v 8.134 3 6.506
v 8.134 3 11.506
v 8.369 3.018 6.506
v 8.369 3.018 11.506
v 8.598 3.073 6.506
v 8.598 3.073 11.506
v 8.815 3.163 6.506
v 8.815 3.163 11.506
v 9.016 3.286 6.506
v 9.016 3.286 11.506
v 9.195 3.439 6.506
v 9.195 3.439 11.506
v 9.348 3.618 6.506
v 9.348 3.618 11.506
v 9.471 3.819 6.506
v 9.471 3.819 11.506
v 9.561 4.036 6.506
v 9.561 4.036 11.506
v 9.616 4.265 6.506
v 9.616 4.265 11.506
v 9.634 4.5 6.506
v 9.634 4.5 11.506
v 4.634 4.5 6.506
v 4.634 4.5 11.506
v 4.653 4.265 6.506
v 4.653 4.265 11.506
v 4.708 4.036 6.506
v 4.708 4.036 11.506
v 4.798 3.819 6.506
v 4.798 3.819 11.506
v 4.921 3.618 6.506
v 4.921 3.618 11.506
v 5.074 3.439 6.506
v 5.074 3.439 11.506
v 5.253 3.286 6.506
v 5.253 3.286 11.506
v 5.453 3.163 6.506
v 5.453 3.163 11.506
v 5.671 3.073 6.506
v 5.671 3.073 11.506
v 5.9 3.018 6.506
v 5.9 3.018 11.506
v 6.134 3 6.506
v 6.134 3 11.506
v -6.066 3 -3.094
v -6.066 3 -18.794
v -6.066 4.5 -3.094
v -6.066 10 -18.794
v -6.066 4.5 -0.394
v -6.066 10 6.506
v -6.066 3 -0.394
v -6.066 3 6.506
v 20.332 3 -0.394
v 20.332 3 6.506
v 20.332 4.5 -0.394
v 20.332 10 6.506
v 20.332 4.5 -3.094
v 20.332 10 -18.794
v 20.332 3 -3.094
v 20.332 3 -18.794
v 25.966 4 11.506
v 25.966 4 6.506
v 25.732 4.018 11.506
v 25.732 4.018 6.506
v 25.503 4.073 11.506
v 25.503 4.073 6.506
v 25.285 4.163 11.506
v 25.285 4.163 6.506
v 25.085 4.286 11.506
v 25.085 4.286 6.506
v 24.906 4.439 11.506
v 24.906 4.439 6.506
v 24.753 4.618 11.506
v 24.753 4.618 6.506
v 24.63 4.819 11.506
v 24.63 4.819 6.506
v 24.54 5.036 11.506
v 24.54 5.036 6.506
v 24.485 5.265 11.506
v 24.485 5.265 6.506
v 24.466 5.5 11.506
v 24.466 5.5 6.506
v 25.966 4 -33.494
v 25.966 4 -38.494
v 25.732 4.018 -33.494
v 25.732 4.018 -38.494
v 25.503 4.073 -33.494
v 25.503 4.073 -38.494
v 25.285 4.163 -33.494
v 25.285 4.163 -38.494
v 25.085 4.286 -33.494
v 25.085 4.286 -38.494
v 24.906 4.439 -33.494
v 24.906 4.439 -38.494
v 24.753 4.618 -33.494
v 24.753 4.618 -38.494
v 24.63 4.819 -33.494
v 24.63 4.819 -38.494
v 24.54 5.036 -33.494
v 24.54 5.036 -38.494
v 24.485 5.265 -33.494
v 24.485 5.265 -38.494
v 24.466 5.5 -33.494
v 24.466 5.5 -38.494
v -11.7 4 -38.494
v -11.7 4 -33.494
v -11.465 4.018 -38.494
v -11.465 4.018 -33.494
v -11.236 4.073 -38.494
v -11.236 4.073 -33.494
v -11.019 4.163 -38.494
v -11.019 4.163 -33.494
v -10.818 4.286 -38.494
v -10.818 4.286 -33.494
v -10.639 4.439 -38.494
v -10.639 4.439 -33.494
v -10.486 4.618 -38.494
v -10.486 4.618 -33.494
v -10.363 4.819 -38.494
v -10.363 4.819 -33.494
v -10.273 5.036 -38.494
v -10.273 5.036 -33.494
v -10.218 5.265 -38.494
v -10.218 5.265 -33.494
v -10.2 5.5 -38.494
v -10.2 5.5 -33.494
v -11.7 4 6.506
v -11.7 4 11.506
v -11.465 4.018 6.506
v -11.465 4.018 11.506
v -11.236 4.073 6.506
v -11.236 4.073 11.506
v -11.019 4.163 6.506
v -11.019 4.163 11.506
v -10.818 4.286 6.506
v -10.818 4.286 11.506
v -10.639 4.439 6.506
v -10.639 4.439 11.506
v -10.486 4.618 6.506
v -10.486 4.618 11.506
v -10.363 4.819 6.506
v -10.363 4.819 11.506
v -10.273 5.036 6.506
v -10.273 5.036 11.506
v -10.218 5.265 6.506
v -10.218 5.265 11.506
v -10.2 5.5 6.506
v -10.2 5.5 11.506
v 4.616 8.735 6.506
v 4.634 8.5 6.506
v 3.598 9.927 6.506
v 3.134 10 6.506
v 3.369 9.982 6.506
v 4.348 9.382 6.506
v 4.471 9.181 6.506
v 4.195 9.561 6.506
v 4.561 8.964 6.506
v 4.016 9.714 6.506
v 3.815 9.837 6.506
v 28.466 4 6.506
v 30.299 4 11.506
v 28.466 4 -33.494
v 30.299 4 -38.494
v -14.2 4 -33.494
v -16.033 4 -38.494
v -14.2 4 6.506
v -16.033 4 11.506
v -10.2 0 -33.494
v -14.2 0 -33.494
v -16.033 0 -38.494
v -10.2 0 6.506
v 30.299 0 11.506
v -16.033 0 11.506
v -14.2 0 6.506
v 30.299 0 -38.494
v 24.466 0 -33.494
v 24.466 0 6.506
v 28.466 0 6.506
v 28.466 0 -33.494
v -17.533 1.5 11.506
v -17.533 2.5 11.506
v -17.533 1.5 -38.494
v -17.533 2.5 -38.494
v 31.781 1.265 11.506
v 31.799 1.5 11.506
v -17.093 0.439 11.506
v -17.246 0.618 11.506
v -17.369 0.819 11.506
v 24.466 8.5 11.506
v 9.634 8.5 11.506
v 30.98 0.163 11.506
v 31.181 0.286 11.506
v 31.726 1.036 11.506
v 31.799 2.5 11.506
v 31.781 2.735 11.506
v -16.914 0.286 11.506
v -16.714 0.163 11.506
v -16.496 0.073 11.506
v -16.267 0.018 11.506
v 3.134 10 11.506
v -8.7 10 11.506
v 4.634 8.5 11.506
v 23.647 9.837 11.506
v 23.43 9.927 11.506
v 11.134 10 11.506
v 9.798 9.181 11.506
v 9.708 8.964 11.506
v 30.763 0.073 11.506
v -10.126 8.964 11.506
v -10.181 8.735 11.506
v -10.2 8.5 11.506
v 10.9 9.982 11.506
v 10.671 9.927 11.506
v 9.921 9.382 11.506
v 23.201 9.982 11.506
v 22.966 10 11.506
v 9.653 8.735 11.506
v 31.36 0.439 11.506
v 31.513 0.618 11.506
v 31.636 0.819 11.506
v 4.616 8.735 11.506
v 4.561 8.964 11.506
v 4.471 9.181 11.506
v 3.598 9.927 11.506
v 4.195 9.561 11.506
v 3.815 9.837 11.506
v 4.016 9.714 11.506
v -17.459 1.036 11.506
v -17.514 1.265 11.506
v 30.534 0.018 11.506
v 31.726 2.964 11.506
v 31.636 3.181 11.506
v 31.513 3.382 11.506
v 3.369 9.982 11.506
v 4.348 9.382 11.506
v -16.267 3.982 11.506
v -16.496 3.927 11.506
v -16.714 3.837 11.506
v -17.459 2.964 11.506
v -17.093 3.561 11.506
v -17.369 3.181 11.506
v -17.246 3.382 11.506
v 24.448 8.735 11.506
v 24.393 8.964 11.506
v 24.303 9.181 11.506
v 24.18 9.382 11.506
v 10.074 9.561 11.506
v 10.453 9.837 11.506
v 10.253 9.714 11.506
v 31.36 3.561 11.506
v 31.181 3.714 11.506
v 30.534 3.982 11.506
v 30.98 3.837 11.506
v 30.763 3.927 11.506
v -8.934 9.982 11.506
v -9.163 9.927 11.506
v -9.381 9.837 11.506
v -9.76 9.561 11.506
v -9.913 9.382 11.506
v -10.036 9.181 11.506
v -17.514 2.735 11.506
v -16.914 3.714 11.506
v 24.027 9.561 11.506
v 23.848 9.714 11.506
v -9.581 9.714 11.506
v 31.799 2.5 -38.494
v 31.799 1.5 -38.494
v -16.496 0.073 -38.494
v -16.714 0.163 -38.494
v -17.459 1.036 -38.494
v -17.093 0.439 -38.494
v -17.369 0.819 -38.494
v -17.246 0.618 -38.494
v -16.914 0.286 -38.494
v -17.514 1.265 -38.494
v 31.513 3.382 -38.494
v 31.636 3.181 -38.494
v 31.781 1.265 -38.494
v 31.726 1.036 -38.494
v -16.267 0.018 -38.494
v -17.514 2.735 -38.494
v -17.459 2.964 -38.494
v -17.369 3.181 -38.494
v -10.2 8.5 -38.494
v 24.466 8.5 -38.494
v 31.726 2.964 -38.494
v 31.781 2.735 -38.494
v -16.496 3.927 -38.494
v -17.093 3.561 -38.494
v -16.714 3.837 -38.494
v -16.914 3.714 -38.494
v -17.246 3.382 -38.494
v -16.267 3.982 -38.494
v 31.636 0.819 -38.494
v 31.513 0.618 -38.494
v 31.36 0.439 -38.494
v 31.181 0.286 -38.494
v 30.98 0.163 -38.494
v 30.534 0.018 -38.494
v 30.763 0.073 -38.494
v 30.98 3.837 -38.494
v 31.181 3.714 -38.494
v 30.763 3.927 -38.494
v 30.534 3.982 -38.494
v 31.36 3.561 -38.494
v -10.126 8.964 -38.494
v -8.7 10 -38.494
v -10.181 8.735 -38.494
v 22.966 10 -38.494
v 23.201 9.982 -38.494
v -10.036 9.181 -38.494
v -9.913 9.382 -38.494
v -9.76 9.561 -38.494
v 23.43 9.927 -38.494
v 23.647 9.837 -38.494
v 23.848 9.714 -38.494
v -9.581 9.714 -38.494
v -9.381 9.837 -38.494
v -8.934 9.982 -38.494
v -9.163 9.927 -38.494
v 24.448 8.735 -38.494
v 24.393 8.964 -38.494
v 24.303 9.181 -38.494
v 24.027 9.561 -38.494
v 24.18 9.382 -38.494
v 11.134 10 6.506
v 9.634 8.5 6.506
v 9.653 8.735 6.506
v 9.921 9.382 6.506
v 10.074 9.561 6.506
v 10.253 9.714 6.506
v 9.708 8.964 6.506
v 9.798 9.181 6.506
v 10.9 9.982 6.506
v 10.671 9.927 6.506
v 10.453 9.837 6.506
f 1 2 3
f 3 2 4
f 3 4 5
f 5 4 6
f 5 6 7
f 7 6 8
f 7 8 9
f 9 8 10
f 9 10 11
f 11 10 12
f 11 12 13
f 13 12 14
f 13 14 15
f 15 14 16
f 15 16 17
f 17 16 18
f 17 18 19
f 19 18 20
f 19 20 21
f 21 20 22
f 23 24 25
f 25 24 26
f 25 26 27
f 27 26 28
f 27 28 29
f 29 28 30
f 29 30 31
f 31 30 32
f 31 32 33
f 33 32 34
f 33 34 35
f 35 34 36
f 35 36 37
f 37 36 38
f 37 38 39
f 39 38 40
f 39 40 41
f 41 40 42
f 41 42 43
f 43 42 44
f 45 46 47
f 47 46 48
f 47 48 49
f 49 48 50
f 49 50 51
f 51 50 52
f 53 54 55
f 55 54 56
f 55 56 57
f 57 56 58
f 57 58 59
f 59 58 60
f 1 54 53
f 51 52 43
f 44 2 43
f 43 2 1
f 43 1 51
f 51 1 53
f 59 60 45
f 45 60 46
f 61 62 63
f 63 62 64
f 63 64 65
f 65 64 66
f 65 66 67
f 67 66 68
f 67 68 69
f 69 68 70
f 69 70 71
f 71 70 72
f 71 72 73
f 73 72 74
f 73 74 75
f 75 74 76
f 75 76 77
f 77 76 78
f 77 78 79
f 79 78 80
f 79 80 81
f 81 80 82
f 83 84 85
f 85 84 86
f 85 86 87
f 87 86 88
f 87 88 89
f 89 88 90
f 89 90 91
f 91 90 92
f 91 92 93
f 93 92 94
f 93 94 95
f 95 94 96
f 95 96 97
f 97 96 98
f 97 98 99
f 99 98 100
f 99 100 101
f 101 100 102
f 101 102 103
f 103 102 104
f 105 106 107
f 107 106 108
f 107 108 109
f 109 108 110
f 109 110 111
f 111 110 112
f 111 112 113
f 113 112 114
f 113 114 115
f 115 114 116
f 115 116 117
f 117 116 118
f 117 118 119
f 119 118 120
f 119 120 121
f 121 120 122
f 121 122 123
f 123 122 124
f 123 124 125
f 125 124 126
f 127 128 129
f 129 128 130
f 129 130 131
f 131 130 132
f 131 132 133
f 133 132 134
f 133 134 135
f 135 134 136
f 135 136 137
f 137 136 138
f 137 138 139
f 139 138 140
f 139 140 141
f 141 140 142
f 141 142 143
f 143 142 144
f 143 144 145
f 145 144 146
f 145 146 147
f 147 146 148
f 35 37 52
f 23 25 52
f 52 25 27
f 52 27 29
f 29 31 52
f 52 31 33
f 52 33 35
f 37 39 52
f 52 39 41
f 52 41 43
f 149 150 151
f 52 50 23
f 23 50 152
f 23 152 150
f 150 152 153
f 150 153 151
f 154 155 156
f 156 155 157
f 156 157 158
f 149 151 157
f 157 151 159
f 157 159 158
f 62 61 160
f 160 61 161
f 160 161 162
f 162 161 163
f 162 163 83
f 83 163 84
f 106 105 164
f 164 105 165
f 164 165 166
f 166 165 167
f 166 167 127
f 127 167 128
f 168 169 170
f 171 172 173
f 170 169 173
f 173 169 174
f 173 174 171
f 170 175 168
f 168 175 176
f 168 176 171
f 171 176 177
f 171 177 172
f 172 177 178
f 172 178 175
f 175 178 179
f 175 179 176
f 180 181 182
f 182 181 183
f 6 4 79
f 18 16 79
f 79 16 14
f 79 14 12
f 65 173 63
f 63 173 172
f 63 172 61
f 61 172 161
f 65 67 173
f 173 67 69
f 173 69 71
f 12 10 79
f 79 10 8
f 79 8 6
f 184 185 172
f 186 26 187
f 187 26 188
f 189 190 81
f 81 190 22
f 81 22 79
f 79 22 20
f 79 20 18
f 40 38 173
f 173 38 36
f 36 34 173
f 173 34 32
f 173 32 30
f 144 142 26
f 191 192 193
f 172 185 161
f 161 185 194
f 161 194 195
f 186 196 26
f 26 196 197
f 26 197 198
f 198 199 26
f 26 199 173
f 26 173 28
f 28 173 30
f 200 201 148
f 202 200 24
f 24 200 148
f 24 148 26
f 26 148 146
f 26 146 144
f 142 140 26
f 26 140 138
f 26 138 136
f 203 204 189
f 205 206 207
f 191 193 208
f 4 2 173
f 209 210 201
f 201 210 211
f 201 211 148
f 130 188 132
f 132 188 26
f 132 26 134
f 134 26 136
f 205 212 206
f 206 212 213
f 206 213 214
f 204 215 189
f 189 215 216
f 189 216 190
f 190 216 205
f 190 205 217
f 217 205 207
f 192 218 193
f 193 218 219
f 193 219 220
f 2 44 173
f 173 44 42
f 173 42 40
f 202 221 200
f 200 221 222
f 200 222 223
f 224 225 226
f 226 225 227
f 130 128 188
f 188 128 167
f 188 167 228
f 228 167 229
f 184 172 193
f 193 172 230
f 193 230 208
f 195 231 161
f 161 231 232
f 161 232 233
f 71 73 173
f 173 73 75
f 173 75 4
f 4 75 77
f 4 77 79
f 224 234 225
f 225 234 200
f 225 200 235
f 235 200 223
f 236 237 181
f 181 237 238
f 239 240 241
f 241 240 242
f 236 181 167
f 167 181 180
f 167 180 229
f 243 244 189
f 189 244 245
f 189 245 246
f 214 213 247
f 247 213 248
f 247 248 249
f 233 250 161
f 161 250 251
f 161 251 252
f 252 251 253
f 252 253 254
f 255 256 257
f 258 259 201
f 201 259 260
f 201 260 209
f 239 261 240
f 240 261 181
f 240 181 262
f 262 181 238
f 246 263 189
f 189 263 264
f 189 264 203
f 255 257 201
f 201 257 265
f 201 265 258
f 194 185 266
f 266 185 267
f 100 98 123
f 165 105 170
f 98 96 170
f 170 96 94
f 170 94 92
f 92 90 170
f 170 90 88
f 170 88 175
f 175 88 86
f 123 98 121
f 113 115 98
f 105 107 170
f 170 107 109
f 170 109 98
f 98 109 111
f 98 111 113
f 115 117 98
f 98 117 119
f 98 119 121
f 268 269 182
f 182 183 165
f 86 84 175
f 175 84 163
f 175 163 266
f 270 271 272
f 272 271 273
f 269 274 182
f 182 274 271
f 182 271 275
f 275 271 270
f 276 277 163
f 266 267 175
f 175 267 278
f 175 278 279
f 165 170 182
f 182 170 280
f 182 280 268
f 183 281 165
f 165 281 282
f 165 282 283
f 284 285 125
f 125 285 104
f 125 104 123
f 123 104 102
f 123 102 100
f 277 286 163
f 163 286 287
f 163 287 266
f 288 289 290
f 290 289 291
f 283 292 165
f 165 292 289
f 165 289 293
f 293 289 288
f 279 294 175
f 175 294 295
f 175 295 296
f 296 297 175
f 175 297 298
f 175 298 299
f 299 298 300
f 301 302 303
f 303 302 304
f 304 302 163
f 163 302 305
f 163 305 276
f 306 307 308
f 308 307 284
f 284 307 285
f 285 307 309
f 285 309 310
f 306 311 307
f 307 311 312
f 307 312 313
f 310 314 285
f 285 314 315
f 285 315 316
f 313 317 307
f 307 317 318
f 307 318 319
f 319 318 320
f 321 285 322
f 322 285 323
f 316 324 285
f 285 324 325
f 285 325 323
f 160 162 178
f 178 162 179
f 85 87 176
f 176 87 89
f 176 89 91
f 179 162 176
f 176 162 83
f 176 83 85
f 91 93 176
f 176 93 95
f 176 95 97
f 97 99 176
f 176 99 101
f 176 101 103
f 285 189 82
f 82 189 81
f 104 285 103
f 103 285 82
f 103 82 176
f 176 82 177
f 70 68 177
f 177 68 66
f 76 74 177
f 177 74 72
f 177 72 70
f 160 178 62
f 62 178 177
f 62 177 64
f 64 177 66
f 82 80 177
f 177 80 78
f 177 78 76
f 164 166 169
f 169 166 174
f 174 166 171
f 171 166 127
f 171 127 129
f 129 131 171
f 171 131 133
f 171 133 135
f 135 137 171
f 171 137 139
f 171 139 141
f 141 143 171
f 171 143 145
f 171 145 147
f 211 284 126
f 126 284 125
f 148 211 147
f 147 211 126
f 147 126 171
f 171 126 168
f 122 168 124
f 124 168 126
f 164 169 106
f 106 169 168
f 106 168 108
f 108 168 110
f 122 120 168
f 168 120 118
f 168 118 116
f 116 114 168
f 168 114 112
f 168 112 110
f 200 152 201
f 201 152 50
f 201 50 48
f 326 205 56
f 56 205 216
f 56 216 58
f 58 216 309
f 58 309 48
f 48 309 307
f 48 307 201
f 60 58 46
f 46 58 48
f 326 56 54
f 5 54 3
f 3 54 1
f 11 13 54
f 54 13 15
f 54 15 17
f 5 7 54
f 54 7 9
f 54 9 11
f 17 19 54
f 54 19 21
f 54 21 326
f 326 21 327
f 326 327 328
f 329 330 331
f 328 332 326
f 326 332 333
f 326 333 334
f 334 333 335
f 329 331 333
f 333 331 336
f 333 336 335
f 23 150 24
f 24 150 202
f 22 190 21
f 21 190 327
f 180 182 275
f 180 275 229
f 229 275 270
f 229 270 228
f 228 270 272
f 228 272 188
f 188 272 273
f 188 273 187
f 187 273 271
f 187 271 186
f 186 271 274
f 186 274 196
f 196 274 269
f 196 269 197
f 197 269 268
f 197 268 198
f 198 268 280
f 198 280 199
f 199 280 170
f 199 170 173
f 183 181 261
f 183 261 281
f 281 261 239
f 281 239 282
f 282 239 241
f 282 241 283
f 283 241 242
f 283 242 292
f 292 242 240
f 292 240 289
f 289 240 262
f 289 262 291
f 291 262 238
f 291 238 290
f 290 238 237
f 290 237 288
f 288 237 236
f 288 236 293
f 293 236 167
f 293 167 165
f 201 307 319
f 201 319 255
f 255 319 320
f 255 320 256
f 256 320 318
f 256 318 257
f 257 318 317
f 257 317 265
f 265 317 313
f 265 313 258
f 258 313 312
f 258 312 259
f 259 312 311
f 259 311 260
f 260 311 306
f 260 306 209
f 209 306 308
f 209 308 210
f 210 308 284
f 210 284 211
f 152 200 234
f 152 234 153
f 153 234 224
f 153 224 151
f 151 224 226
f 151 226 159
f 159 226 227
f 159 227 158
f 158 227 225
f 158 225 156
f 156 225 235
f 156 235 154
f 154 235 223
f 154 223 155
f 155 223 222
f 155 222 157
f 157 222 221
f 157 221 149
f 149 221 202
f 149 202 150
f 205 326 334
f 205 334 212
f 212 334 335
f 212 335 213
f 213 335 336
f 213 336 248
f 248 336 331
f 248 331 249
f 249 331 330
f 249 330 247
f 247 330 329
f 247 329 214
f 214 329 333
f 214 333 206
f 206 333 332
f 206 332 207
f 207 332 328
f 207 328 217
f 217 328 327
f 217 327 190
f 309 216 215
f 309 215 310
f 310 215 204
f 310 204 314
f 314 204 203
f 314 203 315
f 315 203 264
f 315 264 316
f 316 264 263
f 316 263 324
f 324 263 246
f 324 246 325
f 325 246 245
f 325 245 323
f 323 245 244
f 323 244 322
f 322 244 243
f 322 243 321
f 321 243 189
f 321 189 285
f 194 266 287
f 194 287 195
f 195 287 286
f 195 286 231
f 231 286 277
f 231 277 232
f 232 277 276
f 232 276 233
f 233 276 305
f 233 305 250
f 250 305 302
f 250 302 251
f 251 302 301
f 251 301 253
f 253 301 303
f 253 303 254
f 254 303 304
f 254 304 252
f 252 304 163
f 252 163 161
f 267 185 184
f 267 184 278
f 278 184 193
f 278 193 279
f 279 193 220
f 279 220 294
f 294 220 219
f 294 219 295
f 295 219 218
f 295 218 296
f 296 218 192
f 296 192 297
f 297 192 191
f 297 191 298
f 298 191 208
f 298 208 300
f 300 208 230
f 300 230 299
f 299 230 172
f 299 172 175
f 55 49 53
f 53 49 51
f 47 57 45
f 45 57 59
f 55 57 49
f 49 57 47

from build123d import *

# Parameters (mm, degrees)
SKETCH1_W            = 49.332
SKETCH1_H            = 50
SKETCH1_W_2          = 4
SKETCH1_H_2          = 40
BOSS_EXTRUDE1_DEPTH  = 4
SKETCH2_W            = 4.134
SKETCH2_H            = 50
BOSS_EXTRUDE2_DEPTH  = 6
SKETCH8_W            = 4.134
SKETCH8_H            = 50
BOSS_EXTRUDE6_DEPTH  = 6
SKETCH9_W            = 26.398
SKETCH9_H            = 19.7
BOSS_EXTRUDE7_DEPTH  = 6
SKETCH10_W           = 26.398
SKETCH10_H           = 5
BOSS_EXTRUDE8_DEPTH  = 6
SKETCH11_W           = 5
SKETCH11_H           = 5
CUT_EXTRUDE1_DEPTH   = 7
FILLET9_R            = 1.5
FILLET10_R           = 1.5
FILLET13_R           = 1.5
FILLET14_R           = 1.5
FILLET15_R           = 1.5
SKETCH12_W           = 26.398
SKETCH12_H           = 25.3
CUT_EXTRUDE2_DEPTH   = 1
SKETCH13_W           = 26.398
SKETCH13_H           = 2.7
BOSS_EXTRUDE10_DEPTH = 1.5
FILLET18_R           = 1.5
FILLET19_R           = 1.5


with BuildPart() as part:
    # Sketch1 → Boss-Extrude1 (new body)
    with BuildSketch(Plane(origin=(0, 0, 0), x_dir=(1, 0, 0), z_dir=(0, 1, 0))):
        with Locations((7.133329328, 13.494184872)):
            Rectangle(SKETCH1_W, SKETCH1_H)
        with Locations((26.466329328, 13.494184872)):
            Rectangle(SKETCH1_W_2, SKETCH1_H_2, mode=Mode.SUBTRACT)
        with Locations((-12.199670672, 13.494184872)):
            Rectangle(SKETCH1_W_2, SKETCH1_H_2, mode=Mode.SUBTRACT)
    extrude(amount=BOSS_EXTRUDE1_DEPTH)

    # Sketch2 → Boss-Extrude2 (add)
    with BuildSketch(Plane(origin=(0, 4, 0), x_dir=(1, 0, 0), z_dir=(0, 1, 0))):
        with Locations((-8.132670672, 13.494184872)):
            Rectangle(SKETCH2_W, SKETCH2_H)
    extrude(amount=BOSS_EXTRUDE2_DEPTH)

    # Sketch8 → Boss-Extrude6 (add)
    with BuildSketch(Plane(origin=(0, 4, 0), x_dir=(1, 0, 0), z_dir=(0, 1, 0))):
        with Locations((22.399329328, 13.494184872)):
            Rectangle(SKETCH8_W, SKETCH8_H)
    extrude(amount=BOSS_EXTRUDE6_DEPTH)

    # Sketch9 → Boss-Extrude7 (add)
    with BuildSketch(Plane(origin=(0, 4, 0), x_dir=(1, 0, 0), z_dir=(0, 1, 0))):
        with Locations((7.133329328, 28.644184872)):
            Rectangle(SKETCH9_W, SKETCH9_H)
    extrude(amount=BOSS_EXTRUDE7_DEPTH)

    # Sketch10 → Boss-Extrude8 (add)
    with BuildSketch(Plane(origin=(0, 4, 0), x_dir=(1, 0, 0), z_dir=(0, 1, 0))):
        with Locations((7.133329328, -9.005815128)):
            Rectangle(SKETCH10_W, SKETCH10_H)
    extrude(amount=BOSS_EXTRUDE8_DEPTH)

    # Sketch11 → Cut-Extrude1 (cut)
    with BuildSketch(Plane(origin=(0, 10, 0), x_dir=(1, 0, 0), z_dir=(0, 1, 0))):
        with Locations((7.134329328, -9.005815128)):
            Rectangle(SKETCH11_W, SKETCH11_H)
    extrude(amount=-CUT_EXTRUDE1_DEPTH, mode=Mode.SUBTRACT)

    # Fillet9
    fillet9_edges = [part.edges().sort_by_distance(p)[0] for p in [
        (-10.199670672, 4, 9.005815128),
    ]]
    fillet(fillet9_edges, radius=FILLET9_R)

    # Fillet10
    fillet10_edges = [part.edges().sort_by_distance(p)[0] for p in [
        (-10.199670672, 4, -35.994184872),
    ]]
    fillet(fillet10_edges, radius=FILLET10_R)

    # Fillet13
    fillet13_edges = [part.edges().sort_by_distance(p)[0] for p in [
        (24.466329328, 4, -35.994184872),
    ]]
    fillet(fillet13_edges, radius=FILLET13_R)

    # Fillet14
    fillet14_edges = [part.edges().sort_by_distance(p)[0] for p in [
        (24.466329328, 4, 9.005815128),
    ]]
    fillet(fillet14_edges, radius=FILLET14_R)

    # Fillet15
    fillet15_edges = [part.edges().sort_by_distance(p)[0] for p in [
        (4.634329328, 10, 9.005815128),
        (9.634329328, 10, 9.005815128),
        (31.799329328, 4, -13.494184872),
        (-10.199670672, 10, -13.494184872),
        (-17.532670672, 4, -13.494184872),
        (31.799329328, 0, -13.494184872),
        (-17.532670672, 0, -13.494184872),
        (24.466329328, 10, -13.494184872),
    ]]
    fillet(fillet15_edges, radius=FILLET15_R)

    # Sketch12 → Cut-Extrude2 (cut)
    with BuildSketch(Plane(origin=(0, 4, 0), x_dir=(1, 0, 0), z_dir=(0, 1, 0))):
        with Locations((7.133329328, 6.144184872)):
            Rectangle(SKETCH12_W, SKETCH12_H)
    extrude(amount=-CUT_EXTRUDE2_DEPTH, mode=Mode.SUBTRACT)

    # Sketch13 → Boss-Extrude10 (add)
    with BuildSketch(Plane(origin=(0, 3, 0), x_dir=(1, 0, 0), z_dir=(0, 1, 0))):
        with Locations((7.133329328, 1.744184872)):
            Rectangle(SKETCH13_W, SKETCH13_H)
    extrude(amount=BOSS_EXTRUDE10_DEPTH)

    # Fillet18
    fillet18_edges = [part.edges().sort_by_distance(p)[0] for p in [
        (4.634329328, 3, 9.005815128),
    ]]
    fillet(fillet18_edges, radius=FILLET18_R)

    # Fillet19
    fillet19_edges = [part.edges().sort_by_distance(p)[0] for p in [
        (9.634329328, 3, 9.005815128),
    ]]
    fillet(fillet19_edges, radius=FILLET19_R)


solid = part.part
